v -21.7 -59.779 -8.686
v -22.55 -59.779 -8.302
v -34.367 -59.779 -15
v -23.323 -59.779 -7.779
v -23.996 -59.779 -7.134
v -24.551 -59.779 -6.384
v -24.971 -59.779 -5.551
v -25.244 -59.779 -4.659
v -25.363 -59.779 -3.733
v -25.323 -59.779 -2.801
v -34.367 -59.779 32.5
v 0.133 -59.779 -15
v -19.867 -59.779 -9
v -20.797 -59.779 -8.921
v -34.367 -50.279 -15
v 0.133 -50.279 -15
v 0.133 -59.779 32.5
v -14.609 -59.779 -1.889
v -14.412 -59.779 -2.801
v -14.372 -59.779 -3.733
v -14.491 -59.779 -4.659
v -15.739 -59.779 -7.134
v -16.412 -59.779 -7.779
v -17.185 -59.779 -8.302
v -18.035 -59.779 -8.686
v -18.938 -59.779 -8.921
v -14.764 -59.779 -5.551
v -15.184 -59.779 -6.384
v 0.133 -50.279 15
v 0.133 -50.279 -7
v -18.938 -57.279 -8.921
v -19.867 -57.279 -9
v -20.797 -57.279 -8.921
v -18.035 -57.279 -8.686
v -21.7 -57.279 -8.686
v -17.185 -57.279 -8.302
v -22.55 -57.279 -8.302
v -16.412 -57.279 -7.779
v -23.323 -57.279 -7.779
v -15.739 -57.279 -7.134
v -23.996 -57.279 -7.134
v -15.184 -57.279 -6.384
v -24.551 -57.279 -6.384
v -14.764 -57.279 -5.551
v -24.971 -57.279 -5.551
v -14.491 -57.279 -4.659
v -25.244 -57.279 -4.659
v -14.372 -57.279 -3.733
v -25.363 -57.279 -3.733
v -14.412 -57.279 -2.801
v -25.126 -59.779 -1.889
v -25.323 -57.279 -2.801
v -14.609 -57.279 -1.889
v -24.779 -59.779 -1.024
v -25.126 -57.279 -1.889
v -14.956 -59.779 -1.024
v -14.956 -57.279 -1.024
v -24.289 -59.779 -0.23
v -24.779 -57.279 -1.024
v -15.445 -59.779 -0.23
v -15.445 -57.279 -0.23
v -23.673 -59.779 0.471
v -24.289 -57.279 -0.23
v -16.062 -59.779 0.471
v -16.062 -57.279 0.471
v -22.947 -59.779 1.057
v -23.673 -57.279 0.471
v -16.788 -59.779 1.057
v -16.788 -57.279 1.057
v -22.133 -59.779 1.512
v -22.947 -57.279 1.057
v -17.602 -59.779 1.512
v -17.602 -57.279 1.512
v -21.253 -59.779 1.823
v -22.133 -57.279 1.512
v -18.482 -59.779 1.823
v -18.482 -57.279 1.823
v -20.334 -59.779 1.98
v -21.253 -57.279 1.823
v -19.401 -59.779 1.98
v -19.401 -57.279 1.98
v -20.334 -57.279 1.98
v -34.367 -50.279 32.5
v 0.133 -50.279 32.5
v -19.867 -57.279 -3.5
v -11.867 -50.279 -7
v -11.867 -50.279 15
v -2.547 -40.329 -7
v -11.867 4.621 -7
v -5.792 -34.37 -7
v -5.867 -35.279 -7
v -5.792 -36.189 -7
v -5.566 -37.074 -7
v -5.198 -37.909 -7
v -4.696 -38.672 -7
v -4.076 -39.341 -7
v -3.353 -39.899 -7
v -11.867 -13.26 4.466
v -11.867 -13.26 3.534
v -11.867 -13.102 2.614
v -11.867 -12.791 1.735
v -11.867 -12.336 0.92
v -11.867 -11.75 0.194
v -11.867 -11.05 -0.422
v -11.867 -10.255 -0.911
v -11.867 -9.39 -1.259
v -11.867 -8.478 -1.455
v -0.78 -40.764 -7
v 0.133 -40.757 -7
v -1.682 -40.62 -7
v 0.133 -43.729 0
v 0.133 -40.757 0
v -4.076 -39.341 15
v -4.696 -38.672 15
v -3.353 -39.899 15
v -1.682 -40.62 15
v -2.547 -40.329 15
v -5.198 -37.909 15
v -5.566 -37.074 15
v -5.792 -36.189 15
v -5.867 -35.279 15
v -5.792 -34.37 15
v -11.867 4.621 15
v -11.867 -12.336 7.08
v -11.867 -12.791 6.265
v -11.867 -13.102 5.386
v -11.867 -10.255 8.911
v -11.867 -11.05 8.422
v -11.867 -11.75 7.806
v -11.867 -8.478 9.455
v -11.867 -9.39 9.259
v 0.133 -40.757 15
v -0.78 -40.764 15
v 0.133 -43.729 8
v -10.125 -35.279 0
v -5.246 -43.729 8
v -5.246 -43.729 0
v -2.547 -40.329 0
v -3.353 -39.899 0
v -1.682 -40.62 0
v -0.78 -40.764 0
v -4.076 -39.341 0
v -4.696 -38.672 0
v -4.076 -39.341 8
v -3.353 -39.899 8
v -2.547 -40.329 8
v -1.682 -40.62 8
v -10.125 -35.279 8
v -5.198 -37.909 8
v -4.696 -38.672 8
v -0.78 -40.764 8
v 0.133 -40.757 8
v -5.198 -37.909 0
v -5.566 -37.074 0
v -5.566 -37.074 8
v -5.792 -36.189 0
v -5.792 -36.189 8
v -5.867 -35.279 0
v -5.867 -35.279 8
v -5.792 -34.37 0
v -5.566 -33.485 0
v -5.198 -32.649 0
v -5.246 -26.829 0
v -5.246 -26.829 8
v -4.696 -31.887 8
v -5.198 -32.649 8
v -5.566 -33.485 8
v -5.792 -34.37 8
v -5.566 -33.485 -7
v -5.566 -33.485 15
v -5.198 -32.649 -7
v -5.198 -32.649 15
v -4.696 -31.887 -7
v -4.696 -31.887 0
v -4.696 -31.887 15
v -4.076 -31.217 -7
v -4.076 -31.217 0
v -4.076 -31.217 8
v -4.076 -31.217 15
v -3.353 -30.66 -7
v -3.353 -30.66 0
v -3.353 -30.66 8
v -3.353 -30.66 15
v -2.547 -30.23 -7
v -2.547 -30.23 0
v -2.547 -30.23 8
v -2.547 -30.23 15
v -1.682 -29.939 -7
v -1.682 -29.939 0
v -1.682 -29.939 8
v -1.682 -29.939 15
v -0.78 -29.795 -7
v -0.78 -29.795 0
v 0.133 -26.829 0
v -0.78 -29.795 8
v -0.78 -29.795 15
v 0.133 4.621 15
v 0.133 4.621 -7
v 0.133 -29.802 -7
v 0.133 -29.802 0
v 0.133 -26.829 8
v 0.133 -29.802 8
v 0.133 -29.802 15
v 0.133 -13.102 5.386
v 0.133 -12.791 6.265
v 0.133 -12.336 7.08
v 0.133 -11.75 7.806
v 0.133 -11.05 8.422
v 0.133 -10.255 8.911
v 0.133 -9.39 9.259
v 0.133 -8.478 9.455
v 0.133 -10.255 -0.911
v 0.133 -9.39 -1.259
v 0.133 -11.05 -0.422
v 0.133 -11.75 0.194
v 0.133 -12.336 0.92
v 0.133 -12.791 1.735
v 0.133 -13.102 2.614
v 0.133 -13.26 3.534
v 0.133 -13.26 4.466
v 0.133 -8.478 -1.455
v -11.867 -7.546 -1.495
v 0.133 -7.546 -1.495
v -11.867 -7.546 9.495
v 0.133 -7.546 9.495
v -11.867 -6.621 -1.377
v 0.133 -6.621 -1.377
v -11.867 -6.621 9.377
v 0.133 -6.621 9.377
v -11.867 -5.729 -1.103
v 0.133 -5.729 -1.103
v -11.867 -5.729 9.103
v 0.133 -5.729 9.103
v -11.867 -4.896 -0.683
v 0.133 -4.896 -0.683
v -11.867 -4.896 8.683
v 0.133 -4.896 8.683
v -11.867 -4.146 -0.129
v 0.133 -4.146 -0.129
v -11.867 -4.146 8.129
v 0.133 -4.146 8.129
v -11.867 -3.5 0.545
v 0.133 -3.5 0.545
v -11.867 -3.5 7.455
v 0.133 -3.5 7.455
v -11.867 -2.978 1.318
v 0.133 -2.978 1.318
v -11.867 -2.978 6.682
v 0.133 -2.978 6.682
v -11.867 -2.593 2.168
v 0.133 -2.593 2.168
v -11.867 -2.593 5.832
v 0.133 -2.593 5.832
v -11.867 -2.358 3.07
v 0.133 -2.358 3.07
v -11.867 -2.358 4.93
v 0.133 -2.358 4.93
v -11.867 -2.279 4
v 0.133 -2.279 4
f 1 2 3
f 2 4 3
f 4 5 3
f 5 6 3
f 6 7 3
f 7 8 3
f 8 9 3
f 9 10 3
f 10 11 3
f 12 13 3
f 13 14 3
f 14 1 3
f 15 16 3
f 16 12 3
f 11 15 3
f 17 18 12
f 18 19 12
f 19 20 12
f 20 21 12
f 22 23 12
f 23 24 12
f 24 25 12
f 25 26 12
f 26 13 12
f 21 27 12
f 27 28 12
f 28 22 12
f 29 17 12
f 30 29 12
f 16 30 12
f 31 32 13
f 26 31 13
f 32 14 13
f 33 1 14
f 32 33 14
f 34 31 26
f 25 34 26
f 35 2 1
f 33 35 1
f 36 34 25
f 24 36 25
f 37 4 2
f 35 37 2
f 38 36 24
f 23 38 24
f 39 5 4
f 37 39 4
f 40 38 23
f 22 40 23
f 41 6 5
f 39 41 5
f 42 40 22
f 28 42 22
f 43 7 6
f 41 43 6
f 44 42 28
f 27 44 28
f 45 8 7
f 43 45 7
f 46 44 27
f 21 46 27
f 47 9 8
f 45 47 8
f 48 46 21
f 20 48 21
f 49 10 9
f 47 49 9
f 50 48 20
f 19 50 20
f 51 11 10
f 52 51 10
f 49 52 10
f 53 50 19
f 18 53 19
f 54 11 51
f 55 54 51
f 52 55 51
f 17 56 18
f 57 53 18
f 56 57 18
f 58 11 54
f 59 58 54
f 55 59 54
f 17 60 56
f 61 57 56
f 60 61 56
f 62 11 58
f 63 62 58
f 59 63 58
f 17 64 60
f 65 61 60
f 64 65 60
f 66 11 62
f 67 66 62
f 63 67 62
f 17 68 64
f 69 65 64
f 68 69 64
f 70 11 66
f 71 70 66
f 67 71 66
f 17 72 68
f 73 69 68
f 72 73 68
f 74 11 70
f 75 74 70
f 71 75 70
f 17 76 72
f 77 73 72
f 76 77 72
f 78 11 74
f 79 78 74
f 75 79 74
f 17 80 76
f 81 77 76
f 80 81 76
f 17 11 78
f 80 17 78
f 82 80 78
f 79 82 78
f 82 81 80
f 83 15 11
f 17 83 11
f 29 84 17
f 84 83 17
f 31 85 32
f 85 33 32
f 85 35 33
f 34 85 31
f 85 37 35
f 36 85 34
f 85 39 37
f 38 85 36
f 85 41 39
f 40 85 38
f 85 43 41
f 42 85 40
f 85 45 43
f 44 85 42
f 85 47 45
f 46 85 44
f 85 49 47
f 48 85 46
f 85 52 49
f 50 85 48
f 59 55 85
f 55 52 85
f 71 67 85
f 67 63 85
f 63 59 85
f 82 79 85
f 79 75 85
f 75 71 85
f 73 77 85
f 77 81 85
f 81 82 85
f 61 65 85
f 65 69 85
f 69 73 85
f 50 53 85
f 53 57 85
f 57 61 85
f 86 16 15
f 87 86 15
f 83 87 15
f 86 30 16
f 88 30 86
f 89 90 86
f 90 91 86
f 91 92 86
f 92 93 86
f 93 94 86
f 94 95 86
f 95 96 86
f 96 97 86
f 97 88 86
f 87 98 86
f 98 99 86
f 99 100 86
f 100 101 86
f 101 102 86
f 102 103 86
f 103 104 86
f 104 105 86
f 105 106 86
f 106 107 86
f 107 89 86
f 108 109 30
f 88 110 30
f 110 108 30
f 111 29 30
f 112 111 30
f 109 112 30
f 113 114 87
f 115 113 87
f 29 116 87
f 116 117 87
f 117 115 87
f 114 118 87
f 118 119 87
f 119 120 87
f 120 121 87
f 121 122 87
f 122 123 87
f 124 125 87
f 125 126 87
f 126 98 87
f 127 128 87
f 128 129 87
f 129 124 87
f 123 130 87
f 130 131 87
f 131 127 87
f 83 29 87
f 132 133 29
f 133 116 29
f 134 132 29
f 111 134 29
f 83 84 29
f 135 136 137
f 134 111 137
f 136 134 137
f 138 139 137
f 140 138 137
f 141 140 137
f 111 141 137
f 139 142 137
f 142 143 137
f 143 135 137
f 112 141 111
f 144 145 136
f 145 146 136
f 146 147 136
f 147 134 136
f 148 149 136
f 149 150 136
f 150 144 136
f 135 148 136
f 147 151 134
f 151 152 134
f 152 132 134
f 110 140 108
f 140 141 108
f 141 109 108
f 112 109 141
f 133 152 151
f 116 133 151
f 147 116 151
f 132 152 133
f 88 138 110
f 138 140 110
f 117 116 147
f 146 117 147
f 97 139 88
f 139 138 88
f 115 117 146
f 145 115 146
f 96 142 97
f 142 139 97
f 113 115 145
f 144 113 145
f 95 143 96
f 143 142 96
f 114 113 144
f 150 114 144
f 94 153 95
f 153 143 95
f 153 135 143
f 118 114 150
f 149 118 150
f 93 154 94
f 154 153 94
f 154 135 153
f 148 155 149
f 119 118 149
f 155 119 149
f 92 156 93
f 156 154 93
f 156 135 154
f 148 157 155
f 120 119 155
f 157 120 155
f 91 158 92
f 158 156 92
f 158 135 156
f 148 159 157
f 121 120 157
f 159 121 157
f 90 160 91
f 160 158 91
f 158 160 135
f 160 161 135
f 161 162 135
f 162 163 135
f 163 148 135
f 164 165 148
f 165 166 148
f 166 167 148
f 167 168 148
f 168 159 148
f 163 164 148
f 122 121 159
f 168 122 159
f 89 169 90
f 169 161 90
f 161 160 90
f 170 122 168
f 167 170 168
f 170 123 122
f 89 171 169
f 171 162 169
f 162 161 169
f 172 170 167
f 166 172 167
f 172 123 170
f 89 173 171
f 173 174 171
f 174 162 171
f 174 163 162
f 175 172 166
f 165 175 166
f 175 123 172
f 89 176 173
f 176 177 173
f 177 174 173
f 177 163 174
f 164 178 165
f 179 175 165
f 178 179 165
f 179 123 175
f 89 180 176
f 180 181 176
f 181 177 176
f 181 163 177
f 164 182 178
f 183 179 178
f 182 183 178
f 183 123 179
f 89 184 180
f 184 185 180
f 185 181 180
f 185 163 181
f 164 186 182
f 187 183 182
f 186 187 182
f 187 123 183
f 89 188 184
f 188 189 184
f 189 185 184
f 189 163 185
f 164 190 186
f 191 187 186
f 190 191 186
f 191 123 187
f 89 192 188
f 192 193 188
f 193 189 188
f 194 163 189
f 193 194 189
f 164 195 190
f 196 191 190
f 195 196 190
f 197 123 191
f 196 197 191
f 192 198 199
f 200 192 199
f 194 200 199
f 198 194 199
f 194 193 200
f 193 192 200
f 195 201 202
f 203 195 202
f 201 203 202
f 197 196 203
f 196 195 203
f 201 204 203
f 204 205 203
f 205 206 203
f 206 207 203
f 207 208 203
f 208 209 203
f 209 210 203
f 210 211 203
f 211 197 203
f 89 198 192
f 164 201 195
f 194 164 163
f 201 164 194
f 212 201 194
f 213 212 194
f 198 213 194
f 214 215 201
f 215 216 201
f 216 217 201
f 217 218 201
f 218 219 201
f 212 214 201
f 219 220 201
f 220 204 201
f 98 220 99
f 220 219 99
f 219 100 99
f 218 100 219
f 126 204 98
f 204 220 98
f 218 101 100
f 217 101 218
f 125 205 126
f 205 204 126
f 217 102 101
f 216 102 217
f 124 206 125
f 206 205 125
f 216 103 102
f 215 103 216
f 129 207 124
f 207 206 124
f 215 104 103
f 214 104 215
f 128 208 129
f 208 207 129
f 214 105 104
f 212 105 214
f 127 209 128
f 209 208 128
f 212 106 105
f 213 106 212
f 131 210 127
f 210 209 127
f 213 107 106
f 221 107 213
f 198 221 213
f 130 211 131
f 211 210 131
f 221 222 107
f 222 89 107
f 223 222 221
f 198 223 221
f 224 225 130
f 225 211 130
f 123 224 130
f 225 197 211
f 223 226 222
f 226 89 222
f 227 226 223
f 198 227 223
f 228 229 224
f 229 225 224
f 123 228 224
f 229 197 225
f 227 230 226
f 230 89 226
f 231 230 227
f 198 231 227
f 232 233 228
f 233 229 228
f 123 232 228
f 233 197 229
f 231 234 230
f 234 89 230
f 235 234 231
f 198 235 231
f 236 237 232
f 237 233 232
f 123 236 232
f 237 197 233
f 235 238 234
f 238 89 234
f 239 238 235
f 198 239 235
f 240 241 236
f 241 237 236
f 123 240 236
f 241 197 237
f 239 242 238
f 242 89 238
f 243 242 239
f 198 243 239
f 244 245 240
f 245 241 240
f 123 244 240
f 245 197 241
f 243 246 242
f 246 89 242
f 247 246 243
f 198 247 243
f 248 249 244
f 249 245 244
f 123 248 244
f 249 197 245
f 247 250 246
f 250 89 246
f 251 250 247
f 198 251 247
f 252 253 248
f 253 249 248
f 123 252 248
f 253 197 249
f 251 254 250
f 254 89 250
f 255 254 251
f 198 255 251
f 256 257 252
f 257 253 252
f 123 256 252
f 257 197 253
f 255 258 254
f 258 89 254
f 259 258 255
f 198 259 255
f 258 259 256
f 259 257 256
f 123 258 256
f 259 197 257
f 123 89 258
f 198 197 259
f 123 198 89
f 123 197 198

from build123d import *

# Parameters (mm, degrees)
SKETCH_1_W          = 23
SKETCH_1_H          = 64.4
EXTRUDE_1_DEPTH     = 8
SKETCH_3_W          = 23
SKETCH_3_H          = 64.4
SKETCH_3_R          = 5.5
EXTRUDE_2_DEPTH     = 7
SKETCH_4_W          = 23
SKETCH_4_H          = 64.4
SKETCH_4_R          = 5.5
EXTRUDE_3_DEPTH     = 7
SKETCH_5_R          = 5.5
CUT_EXTRUDE_1_DEPTH = 24
SKETCH_6_W          = 22
SKETCH_6_H          = 64.4
CUT_EXTRUDE_2_DEPTH = 11
EXTRUDE_4_DEPTH     = 9.5
SKETCH_9_R          = 5.5
CUT_EXTRUDE_3_DEPTH = 2.5


with BuildPart() as part:
    # 草圖1 → 填料-伸長1 (new body)
    with BuildSketch(Plane.XY):
        with Locations((-0.36746988, -27.579314659)):
            Rectangle(SKETCH_1_W, SKETCH_1_H)
        Polygon((9.38974967, -35.279314659), (4.511139895, -26.829314659), (-5.246079654, -26.829314659), (-10.124689429, -35.279314659), (-5.246079654, -43.729314659), (4.511139895, -43.729314659), align=None, mode=Mode.SUBTRACT)
    extrude(amount=EXTRUDE_1_DEPTH)

    # 草圖3 → 填料-伸長2 (add)
    with BuildSketch(Plane.XY.offset(8)):
        with Locations((-0.36746988, -27.579314659)):
            Rectangle(SKETCH_3_W, SKETCH_3_H)
        with Locations((-0.36746988, -35.279314659)):
            Circle(SKETCH_3_R, mode=Mode.SUBTRACT)
    extrude(amount=EXTRUDE_2_DEPTH)

    # 草圖4 → 填料-伸長3 (add)
    with BuildSketch(Plane(origin=(0, 0, 0), x_dir=(-1, 0, 0), z_dir=(0, 0, -1))):
        with Locations((0.36746988, -27.579314659)):
            Rectangle(SKETCH_4_W, SKETCH_4_H)
        with Locations((0.36746988, -35.279314659)):
            Circle(SKETCH_4_R, mode=Mode.SUBTRACT)
    extrude(amount=EXTRUDE_3_DEPTH)

    # 草圖5 → 除料-伸長1 (cut, through all)
    with BuildSketch(Plane(origin=(11.13253012, 0, 0), x_dir=(0, 0, -1), z_dir=(1, 0, 0))):
        with Locations((-4, -7.779314659)):
            Circle(SKETCH_5_R)
    extrude(amount=-CUT_EXTRUDE_1_DEPTH, mode=Mode.SUBTRACT)

    # 草圖6 → 除料-伸長2 (cut)
    with BuildSketch(Plane(origin=(11.13253012, 0, 0), x_dir=(0, 0, -1), z_dir=(1, 0, 0))):
        with Locations((-4, -27.579314659)):
            Rectangle(SKETCH_6_W, SKETCH_6_H)
    extrude(amount=-CUT_EXTRUDE_2_DEPTH, mode=Mode.SUBTRACT)

    # 草圖8 → 填料-伸長4 (add)
    with BuildSketch(Plane.XZ.offset(59.779314659)):
        Polygon((0.13253012, -7), (0.13253012, -15), (-34.36746988, -15), (-34.36746988, 32.5), (0.13253012, 32.5), align=None)
    extrude(amount=-EXTRUDE_4_DEPTH)

    # 草圖9 → 除料-伸長3 (cut)
    with BuildSketch(Plane.XZ.offset(59.779314659)):
        with Locations((-19.86746988, -3.5)):
            Circle(SKETCH_9_R)
    extrude(amount=-CUT_EXTRUDE_3_DEPTH, mode=Mode.SUBTRACT)


solid = part.part
